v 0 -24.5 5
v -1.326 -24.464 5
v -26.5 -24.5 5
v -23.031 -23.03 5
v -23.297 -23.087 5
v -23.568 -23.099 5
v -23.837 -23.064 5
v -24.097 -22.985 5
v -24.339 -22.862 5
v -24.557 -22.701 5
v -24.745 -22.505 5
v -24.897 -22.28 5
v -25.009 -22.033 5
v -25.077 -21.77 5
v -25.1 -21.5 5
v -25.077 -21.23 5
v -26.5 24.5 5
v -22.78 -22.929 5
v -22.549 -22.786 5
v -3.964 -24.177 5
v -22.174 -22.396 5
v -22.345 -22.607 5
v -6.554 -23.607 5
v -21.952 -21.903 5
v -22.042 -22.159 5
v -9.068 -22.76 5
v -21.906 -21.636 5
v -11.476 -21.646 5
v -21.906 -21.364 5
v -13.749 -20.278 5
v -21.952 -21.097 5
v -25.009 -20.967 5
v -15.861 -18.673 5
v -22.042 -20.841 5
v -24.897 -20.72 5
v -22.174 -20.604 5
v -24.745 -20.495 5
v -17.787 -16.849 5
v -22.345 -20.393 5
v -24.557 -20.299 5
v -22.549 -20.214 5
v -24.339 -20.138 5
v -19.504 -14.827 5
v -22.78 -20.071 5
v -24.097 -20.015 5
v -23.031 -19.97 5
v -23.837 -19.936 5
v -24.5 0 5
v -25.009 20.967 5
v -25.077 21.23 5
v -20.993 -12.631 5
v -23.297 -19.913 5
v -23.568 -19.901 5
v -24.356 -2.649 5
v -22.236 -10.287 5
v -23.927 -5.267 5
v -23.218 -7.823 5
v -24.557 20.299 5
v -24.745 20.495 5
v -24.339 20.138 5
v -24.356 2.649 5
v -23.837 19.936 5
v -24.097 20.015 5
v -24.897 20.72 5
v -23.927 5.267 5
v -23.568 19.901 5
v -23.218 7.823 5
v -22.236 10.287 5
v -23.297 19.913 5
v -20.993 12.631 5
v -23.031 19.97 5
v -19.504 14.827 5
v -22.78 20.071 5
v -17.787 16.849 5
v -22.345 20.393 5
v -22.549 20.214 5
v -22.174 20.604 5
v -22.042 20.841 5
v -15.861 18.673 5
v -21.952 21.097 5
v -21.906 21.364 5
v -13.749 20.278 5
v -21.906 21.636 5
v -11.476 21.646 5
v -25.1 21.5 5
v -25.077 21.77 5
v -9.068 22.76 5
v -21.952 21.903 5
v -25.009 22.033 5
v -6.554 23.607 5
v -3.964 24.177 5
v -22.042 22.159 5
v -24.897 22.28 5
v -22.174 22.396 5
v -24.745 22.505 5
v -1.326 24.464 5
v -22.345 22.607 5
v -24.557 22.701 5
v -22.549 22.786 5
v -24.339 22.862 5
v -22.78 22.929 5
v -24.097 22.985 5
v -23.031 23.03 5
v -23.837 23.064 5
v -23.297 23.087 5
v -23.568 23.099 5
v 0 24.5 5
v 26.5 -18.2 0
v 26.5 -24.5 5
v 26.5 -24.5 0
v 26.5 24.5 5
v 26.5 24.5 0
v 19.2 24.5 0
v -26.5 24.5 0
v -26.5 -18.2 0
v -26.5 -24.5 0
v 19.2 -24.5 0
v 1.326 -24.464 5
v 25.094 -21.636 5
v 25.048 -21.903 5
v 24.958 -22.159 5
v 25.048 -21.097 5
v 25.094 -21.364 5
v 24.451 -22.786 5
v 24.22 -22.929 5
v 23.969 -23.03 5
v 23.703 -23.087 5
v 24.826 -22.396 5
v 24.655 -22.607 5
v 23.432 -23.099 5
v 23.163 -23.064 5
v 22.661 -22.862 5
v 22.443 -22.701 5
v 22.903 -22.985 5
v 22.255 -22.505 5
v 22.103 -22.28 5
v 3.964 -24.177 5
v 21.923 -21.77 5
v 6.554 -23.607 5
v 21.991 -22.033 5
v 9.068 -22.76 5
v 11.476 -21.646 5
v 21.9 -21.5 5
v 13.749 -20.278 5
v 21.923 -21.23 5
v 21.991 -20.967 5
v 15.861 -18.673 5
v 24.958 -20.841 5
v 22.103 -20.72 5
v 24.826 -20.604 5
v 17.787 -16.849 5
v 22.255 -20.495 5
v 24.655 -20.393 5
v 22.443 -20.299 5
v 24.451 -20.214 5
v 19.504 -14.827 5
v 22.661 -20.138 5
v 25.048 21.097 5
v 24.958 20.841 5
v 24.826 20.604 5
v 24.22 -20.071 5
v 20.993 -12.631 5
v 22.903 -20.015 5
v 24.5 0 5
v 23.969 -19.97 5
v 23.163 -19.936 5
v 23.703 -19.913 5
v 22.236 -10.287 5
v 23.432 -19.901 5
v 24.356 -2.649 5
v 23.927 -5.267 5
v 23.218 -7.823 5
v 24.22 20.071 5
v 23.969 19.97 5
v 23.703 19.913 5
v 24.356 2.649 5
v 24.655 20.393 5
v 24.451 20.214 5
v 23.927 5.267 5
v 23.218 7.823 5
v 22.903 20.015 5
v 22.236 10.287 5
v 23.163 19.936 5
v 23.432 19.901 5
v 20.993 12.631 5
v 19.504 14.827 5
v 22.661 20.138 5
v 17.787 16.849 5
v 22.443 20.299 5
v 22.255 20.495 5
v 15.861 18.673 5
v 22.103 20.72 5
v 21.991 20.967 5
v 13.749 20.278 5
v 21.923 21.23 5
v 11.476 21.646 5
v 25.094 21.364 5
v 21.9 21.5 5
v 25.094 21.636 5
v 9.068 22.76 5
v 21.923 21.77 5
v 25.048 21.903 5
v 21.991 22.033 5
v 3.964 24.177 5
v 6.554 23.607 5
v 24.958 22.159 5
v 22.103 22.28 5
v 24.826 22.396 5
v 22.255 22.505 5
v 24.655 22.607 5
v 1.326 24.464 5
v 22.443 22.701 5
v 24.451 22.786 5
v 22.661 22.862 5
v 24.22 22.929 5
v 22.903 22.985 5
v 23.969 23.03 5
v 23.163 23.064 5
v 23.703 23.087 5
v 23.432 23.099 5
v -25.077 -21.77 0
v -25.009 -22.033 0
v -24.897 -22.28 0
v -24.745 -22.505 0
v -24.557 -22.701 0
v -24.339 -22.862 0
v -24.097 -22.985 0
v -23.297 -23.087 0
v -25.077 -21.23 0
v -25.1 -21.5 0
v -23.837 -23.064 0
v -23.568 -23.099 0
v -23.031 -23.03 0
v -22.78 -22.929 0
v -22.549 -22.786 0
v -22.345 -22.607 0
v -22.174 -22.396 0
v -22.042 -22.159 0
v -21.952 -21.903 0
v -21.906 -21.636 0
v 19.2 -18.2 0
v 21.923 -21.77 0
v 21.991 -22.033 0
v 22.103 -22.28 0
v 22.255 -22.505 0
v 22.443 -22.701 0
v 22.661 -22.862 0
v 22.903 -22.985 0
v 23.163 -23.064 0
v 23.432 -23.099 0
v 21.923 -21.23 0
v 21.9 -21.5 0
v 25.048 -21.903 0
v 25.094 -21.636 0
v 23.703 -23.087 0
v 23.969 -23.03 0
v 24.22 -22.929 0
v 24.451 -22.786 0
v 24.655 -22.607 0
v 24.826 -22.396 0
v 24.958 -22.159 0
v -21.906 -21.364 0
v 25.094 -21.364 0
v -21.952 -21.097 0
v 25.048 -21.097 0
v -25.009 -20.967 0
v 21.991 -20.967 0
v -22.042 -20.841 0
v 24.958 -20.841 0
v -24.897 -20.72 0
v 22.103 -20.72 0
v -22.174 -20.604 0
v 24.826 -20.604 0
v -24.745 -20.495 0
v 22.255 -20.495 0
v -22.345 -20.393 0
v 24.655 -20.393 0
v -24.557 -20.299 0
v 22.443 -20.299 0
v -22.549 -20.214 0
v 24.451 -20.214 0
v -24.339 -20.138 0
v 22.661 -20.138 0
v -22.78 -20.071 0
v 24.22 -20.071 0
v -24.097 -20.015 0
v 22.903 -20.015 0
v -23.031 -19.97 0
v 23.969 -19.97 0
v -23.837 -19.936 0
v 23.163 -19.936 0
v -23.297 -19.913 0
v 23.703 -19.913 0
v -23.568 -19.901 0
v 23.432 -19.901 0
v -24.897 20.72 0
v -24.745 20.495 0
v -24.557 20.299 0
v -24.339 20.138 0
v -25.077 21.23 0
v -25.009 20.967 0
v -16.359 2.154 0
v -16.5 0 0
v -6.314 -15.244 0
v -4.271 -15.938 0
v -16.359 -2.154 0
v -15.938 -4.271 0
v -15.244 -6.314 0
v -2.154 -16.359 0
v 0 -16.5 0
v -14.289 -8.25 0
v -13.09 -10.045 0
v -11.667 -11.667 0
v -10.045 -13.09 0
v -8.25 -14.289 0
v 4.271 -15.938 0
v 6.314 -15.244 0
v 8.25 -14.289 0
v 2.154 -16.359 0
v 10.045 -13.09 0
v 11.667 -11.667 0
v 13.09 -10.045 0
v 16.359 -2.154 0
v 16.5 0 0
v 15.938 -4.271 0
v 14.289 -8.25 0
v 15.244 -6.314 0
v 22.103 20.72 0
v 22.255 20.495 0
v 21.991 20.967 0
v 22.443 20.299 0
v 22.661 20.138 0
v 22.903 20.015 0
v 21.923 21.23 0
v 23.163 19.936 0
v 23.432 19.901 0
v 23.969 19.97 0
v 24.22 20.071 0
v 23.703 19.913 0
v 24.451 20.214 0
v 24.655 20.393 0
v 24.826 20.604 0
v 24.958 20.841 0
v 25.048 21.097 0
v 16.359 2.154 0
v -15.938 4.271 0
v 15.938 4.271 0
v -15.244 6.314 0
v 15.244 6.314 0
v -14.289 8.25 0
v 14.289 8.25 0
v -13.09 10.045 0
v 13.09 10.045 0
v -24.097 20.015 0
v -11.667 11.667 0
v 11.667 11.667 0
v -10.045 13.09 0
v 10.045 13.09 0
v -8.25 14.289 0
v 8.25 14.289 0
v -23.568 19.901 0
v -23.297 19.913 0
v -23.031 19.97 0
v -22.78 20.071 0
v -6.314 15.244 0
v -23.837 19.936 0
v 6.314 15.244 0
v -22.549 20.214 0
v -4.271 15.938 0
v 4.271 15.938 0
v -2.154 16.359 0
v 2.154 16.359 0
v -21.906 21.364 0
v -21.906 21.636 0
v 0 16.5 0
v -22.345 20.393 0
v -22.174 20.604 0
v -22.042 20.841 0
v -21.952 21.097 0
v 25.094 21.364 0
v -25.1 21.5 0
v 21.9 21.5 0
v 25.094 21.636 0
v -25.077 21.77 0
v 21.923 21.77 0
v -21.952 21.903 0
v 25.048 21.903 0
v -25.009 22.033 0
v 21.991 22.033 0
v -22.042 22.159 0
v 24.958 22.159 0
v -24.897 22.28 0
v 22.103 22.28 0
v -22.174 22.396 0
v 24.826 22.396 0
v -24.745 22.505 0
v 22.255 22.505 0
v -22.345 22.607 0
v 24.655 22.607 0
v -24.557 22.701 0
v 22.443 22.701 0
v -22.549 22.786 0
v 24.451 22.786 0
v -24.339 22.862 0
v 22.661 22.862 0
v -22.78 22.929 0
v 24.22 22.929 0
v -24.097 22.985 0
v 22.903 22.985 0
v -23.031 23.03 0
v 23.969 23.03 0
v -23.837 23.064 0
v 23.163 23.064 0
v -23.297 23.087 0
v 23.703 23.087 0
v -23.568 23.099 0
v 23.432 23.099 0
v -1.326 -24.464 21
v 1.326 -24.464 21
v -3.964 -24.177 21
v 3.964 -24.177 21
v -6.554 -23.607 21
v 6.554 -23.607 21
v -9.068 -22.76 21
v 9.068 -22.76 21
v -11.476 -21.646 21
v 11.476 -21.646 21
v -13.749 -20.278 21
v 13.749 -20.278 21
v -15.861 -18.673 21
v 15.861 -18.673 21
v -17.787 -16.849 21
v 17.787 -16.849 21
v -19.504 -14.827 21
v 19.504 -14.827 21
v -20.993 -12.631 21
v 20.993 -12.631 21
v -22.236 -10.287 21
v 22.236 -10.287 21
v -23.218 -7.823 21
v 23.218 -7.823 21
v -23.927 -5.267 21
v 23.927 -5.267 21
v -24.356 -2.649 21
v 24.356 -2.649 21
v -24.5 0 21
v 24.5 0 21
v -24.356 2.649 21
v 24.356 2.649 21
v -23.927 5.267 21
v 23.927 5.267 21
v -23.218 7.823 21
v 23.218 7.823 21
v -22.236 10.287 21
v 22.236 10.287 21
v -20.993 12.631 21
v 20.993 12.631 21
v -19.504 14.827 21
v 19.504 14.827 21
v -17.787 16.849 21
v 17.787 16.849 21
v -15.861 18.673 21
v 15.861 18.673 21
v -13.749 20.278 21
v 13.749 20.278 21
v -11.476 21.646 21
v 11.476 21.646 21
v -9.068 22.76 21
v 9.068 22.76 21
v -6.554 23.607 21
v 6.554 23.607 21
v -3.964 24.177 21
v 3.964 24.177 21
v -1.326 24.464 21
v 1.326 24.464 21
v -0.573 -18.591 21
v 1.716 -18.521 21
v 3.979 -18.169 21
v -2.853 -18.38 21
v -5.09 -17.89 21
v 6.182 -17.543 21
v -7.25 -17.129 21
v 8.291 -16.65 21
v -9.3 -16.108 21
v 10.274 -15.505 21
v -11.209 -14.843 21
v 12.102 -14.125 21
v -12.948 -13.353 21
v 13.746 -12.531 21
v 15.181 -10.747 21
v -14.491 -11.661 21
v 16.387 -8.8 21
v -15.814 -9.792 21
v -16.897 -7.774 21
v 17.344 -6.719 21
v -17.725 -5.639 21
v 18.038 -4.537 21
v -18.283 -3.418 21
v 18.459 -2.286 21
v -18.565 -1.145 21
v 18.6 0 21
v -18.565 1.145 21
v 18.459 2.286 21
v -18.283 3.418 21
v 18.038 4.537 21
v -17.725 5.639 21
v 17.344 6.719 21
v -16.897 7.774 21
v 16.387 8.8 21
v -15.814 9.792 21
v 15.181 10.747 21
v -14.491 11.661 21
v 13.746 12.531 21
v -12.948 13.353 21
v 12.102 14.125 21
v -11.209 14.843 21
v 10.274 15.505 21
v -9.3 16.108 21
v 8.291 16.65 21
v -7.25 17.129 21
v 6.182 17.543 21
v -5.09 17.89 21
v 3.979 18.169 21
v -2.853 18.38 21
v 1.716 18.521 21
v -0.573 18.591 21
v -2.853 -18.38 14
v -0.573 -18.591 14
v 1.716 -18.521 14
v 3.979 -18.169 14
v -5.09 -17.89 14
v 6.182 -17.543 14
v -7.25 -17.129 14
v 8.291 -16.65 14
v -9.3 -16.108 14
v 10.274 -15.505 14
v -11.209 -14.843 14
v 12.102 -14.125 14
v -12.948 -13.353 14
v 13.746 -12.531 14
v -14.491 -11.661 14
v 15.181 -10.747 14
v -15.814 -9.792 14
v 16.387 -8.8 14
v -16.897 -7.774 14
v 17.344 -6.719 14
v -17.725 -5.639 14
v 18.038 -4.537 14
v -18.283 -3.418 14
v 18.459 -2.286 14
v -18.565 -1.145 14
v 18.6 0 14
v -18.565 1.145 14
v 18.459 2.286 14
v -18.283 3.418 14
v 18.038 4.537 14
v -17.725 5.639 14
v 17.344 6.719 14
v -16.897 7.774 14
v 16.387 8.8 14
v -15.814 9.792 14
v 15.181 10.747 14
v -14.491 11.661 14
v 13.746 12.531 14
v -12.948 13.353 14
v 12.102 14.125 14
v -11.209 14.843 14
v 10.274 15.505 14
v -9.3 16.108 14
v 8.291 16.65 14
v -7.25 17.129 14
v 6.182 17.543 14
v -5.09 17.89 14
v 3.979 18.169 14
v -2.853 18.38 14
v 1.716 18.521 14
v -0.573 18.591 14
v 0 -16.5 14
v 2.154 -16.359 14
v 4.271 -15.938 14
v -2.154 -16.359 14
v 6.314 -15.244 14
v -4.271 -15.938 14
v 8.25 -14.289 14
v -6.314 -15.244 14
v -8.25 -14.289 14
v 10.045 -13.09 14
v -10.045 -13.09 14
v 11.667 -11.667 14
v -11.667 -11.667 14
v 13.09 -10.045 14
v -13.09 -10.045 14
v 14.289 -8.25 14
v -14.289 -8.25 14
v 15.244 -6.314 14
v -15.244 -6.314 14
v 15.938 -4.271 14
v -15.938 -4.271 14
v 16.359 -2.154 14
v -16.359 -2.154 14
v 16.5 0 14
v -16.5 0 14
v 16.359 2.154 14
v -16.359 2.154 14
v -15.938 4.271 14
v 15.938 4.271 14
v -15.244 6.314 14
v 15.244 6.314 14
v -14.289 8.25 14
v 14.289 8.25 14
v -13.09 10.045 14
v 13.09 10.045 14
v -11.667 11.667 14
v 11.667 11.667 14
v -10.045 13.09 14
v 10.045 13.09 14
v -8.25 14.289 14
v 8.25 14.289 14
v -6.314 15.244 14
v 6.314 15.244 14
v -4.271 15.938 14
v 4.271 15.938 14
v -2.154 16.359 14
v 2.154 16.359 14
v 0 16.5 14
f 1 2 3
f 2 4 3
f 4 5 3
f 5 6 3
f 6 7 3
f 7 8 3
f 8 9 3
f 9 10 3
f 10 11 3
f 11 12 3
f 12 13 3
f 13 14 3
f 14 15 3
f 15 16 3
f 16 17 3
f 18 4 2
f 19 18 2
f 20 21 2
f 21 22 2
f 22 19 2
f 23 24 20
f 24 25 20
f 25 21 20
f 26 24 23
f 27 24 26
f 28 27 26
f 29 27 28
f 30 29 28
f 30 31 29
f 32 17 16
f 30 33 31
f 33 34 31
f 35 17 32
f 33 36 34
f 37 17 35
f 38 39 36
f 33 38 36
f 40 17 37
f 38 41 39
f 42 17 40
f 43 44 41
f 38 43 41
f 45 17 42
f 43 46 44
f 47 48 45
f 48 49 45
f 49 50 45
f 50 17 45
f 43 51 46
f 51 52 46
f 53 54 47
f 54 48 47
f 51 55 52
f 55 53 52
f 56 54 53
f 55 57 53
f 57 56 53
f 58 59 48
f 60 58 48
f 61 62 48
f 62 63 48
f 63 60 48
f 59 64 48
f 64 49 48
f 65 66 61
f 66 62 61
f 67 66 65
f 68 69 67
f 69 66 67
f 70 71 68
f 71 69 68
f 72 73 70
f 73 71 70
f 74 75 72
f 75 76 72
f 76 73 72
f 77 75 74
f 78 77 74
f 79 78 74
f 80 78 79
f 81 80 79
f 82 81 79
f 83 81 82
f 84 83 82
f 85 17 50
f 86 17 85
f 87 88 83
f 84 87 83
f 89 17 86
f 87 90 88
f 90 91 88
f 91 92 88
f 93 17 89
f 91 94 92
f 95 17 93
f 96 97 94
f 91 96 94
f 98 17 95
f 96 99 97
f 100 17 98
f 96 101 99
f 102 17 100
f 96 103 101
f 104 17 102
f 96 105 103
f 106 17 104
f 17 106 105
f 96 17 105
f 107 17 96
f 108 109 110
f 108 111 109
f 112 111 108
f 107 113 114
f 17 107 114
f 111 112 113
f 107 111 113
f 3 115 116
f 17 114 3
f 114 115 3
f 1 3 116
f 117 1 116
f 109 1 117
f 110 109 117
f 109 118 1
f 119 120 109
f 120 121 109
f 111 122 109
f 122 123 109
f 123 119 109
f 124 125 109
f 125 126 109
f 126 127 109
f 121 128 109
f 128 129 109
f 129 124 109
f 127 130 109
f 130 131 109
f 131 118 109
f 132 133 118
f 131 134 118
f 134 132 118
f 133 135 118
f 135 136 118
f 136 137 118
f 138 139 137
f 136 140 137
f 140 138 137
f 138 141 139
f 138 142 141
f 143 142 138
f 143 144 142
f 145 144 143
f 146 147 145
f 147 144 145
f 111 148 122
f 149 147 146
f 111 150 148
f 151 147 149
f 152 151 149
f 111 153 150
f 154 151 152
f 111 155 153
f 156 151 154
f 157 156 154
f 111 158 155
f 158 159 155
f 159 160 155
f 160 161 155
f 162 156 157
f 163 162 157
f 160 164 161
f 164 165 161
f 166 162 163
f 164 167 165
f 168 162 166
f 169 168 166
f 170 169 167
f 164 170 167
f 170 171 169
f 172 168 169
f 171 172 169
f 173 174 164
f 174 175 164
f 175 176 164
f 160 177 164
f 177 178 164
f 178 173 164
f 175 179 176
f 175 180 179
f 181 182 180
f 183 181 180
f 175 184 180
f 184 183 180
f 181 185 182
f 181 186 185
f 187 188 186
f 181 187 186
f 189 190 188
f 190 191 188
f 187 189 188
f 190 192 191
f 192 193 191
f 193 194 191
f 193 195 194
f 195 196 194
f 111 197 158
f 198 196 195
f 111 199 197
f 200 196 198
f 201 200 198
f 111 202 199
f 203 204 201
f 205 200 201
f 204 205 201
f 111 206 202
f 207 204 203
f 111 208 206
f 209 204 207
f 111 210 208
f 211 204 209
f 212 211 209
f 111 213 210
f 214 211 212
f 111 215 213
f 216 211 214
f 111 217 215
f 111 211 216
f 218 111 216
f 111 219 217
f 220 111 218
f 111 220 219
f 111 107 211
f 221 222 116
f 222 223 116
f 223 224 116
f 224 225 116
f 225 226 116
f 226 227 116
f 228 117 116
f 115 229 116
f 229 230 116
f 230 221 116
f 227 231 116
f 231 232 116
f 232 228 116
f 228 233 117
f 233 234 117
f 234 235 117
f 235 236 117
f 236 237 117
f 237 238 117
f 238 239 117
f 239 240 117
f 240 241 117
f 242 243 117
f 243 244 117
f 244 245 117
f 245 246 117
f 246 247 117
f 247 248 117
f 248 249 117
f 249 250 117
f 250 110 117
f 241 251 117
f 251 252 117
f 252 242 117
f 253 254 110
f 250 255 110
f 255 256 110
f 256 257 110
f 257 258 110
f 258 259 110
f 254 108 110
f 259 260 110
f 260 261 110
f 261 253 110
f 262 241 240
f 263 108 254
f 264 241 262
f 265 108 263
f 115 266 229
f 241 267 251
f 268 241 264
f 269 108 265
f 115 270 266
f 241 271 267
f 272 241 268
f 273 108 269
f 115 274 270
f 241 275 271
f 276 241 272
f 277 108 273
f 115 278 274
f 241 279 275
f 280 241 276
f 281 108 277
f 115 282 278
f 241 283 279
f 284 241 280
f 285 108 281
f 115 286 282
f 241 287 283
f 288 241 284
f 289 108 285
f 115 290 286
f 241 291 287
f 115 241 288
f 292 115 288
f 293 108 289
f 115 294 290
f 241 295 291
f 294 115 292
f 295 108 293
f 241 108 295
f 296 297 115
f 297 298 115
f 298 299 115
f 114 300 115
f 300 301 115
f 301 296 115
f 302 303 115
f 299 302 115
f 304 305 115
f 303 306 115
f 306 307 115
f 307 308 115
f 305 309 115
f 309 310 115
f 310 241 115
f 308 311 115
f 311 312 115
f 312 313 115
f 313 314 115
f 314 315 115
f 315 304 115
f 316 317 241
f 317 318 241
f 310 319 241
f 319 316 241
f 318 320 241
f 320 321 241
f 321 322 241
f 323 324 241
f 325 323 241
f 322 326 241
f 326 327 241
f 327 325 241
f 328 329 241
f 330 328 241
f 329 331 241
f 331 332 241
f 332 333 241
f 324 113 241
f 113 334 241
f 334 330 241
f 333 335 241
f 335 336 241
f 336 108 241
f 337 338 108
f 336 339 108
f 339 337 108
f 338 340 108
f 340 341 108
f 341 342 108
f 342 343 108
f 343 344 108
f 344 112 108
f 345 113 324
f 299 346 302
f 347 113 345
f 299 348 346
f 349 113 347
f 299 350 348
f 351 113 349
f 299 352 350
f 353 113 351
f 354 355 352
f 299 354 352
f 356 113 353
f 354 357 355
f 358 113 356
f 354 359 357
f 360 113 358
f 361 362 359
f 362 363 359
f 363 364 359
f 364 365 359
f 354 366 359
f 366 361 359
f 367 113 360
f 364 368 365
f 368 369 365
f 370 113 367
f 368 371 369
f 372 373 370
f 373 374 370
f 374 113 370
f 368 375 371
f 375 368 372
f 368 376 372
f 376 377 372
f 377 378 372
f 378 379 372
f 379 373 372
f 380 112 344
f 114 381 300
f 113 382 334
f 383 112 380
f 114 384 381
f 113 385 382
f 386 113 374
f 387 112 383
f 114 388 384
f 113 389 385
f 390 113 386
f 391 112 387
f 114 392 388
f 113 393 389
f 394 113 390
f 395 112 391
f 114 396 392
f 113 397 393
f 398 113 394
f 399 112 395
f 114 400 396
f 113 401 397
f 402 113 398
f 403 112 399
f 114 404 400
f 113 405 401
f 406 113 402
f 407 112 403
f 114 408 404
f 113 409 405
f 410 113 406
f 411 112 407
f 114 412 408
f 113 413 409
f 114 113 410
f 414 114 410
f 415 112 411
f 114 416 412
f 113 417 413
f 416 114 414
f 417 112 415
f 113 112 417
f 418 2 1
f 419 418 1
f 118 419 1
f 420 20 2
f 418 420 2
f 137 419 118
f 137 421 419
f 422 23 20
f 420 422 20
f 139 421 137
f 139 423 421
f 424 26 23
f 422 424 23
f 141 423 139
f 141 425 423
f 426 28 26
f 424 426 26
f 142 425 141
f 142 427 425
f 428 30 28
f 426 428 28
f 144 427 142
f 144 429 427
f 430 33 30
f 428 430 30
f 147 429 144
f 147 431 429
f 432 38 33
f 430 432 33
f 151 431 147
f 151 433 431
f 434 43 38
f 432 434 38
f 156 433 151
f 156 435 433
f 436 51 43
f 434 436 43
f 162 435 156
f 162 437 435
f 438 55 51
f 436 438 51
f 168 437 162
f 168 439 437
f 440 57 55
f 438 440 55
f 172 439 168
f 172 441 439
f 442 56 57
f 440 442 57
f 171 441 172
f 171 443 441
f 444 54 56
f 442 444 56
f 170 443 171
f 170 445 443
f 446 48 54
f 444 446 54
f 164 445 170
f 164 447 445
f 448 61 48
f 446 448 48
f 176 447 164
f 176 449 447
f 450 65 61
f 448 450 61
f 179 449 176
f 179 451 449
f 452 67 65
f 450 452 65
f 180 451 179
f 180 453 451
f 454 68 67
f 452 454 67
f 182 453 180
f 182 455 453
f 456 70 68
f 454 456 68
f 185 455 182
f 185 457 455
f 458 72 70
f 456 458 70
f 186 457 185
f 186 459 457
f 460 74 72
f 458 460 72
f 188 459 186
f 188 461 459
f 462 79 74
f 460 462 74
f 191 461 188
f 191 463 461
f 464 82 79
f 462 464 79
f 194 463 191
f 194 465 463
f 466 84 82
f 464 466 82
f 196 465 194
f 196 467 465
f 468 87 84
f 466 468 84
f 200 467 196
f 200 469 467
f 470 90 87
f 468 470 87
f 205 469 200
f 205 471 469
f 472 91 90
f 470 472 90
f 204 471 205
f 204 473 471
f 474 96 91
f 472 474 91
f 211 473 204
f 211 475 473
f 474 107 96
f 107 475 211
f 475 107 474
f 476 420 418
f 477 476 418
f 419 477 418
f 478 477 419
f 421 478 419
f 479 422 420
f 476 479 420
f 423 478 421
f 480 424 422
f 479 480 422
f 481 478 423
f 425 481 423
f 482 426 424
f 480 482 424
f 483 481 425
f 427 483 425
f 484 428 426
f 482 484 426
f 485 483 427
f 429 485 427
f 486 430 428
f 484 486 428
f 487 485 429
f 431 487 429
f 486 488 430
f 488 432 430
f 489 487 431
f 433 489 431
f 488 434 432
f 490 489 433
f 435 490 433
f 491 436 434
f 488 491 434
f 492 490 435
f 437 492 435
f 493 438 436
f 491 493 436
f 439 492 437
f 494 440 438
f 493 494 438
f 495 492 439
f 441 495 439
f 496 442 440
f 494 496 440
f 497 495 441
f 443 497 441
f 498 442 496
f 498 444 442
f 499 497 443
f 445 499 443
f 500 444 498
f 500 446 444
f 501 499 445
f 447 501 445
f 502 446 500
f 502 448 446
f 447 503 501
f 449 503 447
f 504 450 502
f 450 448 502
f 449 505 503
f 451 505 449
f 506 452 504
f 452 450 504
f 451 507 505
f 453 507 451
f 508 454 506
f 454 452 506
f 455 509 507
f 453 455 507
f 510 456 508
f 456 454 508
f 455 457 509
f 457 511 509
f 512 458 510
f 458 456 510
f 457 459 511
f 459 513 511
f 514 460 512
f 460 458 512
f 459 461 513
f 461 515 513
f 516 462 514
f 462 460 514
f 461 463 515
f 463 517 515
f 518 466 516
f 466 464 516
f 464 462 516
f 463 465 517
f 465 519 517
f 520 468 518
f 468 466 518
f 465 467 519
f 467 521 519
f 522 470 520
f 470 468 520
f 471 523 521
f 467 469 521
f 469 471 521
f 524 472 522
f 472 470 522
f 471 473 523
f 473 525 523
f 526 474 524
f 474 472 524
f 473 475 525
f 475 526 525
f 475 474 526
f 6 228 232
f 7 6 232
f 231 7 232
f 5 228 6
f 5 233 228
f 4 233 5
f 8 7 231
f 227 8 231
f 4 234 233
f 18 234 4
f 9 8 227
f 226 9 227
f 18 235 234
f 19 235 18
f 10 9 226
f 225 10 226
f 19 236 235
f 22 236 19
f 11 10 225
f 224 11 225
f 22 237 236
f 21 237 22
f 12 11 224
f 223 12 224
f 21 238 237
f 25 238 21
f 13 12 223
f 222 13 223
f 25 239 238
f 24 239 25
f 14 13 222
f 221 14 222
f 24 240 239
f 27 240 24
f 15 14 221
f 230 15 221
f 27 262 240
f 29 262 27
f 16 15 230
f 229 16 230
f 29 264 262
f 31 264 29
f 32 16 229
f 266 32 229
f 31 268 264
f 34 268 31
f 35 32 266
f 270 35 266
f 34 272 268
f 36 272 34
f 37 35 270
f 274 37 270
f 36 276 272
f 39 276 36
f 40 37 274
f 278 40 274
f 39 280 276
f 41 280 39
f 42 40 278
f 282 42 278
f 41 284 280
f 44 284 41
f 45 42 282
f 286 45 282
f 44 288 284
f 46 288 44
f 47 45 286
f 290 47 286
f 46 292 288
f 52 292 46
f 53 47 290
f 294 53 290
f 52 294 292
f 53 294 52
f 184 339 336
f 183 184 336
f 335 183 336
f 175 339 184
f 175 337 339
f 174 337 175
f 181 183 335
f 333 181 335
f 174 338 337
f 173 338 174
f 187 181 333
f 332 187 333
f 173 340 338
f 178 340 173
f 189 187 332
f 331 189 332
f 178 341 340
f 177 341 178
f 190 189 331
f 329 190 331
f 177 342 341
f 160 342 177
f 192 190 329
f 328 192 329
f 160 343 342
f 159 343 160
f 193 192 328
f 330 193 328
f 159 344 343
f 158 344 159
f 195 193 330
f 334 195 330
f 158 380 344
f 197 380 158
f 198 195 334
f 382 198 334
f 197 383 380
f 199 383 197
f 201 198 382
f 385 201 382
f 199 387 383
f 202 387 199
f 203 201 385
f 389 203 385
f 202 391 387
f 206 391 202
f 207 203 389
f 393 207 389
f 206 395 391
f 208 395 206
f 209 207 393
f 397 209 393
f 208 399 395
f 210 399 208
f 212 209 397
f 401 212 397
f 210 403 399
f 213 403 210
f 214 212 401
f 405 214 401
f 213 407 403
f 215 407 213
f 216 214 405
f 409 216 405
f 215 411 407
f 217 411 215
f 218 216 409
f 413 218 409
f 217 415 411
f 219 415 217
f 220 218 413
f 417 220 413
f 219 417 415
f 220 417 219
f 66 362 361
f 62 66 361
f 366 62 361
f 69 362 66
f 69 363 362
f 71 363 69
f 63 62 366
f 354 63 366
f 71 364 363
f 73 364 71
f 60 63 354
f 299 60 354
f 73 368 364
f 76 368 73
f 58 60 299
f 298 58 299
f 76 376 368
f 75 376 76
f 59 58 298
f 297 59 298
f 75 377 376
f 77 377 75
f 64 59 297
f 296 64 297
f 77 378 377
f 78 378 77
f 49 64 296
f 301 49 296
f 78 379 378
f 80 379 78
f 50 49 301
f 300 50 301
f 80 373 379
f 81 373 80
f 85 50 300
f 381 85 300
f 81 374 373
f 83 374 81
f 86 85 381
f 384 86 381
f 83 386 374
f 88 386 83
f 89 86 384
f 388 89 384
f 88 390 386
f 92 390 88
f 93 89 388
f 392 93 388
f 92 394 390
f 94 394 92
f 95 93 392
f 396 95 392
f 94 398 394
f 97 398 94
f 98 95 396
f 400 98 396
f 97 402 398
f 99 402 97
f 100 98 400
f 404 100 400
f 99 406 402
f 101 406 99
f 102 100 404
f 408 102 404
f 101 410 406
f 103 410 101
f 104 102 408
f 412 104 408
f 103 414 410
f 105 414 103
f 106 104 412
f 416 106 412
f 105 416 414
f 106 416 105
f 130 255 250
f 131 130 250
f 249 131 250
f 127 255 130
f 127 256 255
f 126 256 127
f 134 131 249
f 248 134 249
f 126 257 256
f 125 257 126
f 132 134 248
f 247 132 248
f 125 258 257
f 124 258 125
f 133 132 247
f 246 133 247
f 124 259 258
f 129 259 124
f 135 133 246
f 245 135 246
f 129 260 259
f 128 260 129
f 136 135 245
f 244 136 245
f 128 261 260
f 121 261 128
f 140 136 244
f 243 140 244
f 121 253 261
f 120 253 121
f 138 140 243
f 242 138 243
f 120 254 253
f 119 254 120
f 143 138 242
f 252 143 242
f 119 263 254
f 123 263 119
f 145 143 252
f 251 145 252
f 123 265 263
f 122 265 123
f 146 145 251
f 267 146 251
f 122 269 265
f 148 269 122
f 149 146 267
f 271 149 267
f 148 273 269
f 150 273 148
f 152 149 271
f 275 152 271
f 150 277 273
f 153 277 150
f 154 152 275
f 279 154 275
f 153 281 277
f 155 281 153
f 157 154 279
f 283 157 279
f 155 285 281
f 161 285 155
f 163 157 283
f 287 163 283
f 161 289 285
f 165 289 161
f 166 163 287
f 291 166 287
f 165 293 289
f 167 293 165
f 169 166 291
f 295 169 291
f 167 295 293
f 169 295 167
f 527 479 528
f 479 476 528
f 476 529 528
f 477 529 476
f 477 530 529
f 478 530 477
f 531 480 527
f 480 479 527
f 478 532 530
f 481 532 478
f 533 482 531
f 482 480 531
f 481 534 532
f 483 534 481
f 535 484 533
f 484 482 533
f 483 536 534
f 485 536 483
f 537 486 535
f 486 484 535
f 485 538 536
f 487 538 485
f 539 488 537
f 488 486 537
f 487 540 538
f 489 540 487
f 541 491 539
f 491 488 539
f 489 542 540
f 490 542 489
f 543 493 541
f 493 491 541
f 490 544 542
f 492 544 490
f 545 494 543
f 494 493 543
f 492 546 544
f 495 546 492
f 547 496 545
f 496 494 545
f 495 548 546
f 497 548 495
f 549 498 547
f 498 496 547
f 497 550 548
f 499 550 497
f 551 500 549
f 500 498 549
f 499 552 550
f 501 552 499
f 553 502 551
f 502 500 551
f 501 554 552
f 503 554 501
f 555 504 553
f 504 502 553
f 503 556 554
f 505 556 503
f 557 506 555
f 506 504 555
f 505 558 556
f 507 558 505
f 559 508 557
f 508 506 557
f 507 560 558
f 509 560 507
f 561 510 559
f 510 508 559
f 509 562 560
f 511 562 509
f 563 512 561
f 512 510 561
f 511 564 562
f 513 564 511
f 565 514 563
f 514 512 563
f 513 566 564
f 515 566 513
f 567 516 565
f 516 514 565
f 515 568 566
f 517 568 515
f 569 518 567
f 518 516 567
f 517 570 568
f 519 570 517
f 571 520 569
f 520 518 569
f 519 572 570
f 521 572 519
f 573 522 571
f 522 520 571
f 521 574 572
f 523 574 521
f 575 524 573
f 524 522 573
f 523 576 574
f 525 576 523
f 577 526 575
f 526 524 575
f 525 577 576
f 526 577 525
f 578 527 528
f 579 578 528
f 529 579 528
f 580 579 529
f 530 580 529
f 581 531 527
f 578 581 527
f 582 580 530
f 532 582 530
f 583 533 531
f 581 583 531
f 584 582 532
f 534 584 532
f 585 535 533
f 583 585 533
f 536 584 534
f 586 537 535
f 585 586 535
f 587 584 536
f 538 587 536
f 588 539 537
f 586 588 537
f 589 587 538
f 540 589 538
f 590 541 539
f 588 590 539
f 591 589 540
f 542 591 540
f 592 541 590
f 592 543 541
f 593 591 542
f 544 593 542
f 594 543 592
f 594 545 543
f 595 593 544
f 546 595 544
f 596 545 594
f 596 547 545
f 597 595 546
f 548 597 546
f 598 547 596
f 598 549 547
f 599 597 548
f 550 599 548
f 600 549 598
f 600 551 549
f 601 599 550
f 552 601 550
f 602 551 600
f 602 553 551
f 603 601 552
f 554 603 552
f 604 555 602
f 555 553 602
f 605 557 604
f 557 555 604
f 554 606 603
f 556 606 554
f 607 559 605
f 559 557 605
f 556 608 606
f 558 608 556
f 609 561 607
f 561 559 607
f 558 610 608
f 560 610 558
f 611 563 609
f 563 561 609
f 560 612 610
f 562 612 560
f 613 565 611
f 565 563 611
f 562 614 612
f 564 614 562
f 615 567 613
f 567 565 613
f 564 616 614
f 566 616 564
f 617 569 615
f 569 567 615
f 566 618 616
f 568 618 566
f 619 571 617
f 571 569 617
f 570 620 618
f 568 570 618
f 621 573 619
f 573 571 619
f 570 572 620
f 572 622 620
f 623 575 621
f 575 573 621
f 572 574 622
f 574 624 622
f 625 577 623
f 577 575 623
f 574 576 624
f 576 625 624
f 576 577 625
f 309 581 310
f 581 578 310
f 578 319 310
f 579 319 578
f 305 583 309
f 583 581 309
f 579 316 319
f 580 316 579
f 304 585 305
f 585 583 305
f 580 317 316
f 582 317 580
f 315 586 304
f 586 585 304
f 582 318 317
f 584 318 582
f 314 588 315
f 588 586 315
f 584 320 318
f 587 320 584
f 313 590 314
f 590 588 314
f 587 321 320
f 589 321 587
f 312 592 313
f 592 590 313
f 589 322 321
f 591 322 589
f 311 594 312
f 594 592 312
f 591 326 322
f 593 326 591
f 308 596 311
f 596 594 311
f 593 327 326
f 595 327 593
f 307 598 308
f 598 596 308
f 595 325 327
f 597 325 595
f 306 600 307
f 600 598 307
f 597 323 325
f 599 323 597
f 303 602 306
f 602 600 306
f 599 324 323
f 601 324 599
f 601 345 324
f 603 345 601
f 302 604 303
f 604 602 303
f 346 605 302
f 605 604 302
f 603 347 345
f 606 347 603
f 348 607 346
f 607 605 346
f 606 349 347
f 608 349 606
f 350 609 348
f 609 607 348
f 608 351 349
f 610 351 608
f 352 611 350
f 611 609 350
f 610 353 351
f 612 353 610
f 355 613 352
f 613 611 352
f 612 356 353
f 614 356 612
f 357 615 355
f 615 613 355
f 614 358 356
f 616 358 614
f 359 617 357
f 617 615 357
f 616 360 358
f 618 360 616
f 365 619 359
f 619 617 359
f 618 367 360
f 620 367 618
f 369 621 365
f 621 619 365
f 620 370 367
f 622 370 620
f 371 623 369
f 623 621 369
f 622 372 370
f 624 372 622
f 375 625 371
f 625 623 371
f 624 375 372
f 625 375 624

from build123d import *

# Parameters (mm, degrees)
SKETCH1_W           = 53
SKETCH1_H           = 49
BOSS_EXTRUDE1_DEPTH = 5
SKETCH2_R           = 24.5
BOSS_EXTRUDE2_DEPTH = 16
SKETCH4_R           = 1.6
CUT_EXTRUDE1_DEPTH  = 22
SKETCH5_R           = 18.6
CUT_EXTRUDE2_DEPTH  = 7
SKETCH6_R           = 16.5
CUT_EXTRUDE3_DEPTH  = 15


with BuildPart() as part:
    # Sketch1 → Boss-Extrude1 (new body)
    with BuildSketch(Plane.XY):
        Rectangle(SKETCH1_W, SKETCH1_H)
    extrude(amount=BOSS_EXTRUDE1_DEPTH)

    # Sketch2 → Boss-Extrude2 (add)
    with BuildSketch(Plane.XY.offset(5)):
        Circle(SKETCH2_R)
    extrude(amount=BOSS_EXTRUDE2_DEPTH)

    # Sketch4 → Cut-Extrude1 (cut, through all)
    with BuildSketch(Plane(origin=(0, 0, 0), x_dir=(-1, 0, 0), z_dir=(0, 0, -1))):
        with Locations((23.5, -21.5)):
            Circle(SKETCH4_R)
        with Locations((-23.5, -21.5)):
            Circle(SKETCH4_R)
        with Locations((23.5, 21.5)):
            Circle(SKETCH4_R)
        with Locations((-23.5, 21.5)):
            Circle(SKETCH4_R)
    extrude(amount=-CUT_EXTRUDE1_DEPTH, mode=Mode.SUBTRACT)

    # Sketch5 → Cut-Extrude2 (cut)
    with BuildSketch(Plane.XY.offset(21)):
        Circle(SKETCH5_R)
    extrude(amount=-CUT_EXTRUDE2_DEPTH, mode=Mode.SUBTRACT)

    # Sketch6 → Cut-Extrude3 (cut, through all)
    with BuildSketch(Plane.XY.offset(14)):
        Circle(SKETCH6_R)
    extrude(amount=-CUT_EXTRUDE3_DEPTH, mode=Mode.SUBTRACT)


solid = part.part
